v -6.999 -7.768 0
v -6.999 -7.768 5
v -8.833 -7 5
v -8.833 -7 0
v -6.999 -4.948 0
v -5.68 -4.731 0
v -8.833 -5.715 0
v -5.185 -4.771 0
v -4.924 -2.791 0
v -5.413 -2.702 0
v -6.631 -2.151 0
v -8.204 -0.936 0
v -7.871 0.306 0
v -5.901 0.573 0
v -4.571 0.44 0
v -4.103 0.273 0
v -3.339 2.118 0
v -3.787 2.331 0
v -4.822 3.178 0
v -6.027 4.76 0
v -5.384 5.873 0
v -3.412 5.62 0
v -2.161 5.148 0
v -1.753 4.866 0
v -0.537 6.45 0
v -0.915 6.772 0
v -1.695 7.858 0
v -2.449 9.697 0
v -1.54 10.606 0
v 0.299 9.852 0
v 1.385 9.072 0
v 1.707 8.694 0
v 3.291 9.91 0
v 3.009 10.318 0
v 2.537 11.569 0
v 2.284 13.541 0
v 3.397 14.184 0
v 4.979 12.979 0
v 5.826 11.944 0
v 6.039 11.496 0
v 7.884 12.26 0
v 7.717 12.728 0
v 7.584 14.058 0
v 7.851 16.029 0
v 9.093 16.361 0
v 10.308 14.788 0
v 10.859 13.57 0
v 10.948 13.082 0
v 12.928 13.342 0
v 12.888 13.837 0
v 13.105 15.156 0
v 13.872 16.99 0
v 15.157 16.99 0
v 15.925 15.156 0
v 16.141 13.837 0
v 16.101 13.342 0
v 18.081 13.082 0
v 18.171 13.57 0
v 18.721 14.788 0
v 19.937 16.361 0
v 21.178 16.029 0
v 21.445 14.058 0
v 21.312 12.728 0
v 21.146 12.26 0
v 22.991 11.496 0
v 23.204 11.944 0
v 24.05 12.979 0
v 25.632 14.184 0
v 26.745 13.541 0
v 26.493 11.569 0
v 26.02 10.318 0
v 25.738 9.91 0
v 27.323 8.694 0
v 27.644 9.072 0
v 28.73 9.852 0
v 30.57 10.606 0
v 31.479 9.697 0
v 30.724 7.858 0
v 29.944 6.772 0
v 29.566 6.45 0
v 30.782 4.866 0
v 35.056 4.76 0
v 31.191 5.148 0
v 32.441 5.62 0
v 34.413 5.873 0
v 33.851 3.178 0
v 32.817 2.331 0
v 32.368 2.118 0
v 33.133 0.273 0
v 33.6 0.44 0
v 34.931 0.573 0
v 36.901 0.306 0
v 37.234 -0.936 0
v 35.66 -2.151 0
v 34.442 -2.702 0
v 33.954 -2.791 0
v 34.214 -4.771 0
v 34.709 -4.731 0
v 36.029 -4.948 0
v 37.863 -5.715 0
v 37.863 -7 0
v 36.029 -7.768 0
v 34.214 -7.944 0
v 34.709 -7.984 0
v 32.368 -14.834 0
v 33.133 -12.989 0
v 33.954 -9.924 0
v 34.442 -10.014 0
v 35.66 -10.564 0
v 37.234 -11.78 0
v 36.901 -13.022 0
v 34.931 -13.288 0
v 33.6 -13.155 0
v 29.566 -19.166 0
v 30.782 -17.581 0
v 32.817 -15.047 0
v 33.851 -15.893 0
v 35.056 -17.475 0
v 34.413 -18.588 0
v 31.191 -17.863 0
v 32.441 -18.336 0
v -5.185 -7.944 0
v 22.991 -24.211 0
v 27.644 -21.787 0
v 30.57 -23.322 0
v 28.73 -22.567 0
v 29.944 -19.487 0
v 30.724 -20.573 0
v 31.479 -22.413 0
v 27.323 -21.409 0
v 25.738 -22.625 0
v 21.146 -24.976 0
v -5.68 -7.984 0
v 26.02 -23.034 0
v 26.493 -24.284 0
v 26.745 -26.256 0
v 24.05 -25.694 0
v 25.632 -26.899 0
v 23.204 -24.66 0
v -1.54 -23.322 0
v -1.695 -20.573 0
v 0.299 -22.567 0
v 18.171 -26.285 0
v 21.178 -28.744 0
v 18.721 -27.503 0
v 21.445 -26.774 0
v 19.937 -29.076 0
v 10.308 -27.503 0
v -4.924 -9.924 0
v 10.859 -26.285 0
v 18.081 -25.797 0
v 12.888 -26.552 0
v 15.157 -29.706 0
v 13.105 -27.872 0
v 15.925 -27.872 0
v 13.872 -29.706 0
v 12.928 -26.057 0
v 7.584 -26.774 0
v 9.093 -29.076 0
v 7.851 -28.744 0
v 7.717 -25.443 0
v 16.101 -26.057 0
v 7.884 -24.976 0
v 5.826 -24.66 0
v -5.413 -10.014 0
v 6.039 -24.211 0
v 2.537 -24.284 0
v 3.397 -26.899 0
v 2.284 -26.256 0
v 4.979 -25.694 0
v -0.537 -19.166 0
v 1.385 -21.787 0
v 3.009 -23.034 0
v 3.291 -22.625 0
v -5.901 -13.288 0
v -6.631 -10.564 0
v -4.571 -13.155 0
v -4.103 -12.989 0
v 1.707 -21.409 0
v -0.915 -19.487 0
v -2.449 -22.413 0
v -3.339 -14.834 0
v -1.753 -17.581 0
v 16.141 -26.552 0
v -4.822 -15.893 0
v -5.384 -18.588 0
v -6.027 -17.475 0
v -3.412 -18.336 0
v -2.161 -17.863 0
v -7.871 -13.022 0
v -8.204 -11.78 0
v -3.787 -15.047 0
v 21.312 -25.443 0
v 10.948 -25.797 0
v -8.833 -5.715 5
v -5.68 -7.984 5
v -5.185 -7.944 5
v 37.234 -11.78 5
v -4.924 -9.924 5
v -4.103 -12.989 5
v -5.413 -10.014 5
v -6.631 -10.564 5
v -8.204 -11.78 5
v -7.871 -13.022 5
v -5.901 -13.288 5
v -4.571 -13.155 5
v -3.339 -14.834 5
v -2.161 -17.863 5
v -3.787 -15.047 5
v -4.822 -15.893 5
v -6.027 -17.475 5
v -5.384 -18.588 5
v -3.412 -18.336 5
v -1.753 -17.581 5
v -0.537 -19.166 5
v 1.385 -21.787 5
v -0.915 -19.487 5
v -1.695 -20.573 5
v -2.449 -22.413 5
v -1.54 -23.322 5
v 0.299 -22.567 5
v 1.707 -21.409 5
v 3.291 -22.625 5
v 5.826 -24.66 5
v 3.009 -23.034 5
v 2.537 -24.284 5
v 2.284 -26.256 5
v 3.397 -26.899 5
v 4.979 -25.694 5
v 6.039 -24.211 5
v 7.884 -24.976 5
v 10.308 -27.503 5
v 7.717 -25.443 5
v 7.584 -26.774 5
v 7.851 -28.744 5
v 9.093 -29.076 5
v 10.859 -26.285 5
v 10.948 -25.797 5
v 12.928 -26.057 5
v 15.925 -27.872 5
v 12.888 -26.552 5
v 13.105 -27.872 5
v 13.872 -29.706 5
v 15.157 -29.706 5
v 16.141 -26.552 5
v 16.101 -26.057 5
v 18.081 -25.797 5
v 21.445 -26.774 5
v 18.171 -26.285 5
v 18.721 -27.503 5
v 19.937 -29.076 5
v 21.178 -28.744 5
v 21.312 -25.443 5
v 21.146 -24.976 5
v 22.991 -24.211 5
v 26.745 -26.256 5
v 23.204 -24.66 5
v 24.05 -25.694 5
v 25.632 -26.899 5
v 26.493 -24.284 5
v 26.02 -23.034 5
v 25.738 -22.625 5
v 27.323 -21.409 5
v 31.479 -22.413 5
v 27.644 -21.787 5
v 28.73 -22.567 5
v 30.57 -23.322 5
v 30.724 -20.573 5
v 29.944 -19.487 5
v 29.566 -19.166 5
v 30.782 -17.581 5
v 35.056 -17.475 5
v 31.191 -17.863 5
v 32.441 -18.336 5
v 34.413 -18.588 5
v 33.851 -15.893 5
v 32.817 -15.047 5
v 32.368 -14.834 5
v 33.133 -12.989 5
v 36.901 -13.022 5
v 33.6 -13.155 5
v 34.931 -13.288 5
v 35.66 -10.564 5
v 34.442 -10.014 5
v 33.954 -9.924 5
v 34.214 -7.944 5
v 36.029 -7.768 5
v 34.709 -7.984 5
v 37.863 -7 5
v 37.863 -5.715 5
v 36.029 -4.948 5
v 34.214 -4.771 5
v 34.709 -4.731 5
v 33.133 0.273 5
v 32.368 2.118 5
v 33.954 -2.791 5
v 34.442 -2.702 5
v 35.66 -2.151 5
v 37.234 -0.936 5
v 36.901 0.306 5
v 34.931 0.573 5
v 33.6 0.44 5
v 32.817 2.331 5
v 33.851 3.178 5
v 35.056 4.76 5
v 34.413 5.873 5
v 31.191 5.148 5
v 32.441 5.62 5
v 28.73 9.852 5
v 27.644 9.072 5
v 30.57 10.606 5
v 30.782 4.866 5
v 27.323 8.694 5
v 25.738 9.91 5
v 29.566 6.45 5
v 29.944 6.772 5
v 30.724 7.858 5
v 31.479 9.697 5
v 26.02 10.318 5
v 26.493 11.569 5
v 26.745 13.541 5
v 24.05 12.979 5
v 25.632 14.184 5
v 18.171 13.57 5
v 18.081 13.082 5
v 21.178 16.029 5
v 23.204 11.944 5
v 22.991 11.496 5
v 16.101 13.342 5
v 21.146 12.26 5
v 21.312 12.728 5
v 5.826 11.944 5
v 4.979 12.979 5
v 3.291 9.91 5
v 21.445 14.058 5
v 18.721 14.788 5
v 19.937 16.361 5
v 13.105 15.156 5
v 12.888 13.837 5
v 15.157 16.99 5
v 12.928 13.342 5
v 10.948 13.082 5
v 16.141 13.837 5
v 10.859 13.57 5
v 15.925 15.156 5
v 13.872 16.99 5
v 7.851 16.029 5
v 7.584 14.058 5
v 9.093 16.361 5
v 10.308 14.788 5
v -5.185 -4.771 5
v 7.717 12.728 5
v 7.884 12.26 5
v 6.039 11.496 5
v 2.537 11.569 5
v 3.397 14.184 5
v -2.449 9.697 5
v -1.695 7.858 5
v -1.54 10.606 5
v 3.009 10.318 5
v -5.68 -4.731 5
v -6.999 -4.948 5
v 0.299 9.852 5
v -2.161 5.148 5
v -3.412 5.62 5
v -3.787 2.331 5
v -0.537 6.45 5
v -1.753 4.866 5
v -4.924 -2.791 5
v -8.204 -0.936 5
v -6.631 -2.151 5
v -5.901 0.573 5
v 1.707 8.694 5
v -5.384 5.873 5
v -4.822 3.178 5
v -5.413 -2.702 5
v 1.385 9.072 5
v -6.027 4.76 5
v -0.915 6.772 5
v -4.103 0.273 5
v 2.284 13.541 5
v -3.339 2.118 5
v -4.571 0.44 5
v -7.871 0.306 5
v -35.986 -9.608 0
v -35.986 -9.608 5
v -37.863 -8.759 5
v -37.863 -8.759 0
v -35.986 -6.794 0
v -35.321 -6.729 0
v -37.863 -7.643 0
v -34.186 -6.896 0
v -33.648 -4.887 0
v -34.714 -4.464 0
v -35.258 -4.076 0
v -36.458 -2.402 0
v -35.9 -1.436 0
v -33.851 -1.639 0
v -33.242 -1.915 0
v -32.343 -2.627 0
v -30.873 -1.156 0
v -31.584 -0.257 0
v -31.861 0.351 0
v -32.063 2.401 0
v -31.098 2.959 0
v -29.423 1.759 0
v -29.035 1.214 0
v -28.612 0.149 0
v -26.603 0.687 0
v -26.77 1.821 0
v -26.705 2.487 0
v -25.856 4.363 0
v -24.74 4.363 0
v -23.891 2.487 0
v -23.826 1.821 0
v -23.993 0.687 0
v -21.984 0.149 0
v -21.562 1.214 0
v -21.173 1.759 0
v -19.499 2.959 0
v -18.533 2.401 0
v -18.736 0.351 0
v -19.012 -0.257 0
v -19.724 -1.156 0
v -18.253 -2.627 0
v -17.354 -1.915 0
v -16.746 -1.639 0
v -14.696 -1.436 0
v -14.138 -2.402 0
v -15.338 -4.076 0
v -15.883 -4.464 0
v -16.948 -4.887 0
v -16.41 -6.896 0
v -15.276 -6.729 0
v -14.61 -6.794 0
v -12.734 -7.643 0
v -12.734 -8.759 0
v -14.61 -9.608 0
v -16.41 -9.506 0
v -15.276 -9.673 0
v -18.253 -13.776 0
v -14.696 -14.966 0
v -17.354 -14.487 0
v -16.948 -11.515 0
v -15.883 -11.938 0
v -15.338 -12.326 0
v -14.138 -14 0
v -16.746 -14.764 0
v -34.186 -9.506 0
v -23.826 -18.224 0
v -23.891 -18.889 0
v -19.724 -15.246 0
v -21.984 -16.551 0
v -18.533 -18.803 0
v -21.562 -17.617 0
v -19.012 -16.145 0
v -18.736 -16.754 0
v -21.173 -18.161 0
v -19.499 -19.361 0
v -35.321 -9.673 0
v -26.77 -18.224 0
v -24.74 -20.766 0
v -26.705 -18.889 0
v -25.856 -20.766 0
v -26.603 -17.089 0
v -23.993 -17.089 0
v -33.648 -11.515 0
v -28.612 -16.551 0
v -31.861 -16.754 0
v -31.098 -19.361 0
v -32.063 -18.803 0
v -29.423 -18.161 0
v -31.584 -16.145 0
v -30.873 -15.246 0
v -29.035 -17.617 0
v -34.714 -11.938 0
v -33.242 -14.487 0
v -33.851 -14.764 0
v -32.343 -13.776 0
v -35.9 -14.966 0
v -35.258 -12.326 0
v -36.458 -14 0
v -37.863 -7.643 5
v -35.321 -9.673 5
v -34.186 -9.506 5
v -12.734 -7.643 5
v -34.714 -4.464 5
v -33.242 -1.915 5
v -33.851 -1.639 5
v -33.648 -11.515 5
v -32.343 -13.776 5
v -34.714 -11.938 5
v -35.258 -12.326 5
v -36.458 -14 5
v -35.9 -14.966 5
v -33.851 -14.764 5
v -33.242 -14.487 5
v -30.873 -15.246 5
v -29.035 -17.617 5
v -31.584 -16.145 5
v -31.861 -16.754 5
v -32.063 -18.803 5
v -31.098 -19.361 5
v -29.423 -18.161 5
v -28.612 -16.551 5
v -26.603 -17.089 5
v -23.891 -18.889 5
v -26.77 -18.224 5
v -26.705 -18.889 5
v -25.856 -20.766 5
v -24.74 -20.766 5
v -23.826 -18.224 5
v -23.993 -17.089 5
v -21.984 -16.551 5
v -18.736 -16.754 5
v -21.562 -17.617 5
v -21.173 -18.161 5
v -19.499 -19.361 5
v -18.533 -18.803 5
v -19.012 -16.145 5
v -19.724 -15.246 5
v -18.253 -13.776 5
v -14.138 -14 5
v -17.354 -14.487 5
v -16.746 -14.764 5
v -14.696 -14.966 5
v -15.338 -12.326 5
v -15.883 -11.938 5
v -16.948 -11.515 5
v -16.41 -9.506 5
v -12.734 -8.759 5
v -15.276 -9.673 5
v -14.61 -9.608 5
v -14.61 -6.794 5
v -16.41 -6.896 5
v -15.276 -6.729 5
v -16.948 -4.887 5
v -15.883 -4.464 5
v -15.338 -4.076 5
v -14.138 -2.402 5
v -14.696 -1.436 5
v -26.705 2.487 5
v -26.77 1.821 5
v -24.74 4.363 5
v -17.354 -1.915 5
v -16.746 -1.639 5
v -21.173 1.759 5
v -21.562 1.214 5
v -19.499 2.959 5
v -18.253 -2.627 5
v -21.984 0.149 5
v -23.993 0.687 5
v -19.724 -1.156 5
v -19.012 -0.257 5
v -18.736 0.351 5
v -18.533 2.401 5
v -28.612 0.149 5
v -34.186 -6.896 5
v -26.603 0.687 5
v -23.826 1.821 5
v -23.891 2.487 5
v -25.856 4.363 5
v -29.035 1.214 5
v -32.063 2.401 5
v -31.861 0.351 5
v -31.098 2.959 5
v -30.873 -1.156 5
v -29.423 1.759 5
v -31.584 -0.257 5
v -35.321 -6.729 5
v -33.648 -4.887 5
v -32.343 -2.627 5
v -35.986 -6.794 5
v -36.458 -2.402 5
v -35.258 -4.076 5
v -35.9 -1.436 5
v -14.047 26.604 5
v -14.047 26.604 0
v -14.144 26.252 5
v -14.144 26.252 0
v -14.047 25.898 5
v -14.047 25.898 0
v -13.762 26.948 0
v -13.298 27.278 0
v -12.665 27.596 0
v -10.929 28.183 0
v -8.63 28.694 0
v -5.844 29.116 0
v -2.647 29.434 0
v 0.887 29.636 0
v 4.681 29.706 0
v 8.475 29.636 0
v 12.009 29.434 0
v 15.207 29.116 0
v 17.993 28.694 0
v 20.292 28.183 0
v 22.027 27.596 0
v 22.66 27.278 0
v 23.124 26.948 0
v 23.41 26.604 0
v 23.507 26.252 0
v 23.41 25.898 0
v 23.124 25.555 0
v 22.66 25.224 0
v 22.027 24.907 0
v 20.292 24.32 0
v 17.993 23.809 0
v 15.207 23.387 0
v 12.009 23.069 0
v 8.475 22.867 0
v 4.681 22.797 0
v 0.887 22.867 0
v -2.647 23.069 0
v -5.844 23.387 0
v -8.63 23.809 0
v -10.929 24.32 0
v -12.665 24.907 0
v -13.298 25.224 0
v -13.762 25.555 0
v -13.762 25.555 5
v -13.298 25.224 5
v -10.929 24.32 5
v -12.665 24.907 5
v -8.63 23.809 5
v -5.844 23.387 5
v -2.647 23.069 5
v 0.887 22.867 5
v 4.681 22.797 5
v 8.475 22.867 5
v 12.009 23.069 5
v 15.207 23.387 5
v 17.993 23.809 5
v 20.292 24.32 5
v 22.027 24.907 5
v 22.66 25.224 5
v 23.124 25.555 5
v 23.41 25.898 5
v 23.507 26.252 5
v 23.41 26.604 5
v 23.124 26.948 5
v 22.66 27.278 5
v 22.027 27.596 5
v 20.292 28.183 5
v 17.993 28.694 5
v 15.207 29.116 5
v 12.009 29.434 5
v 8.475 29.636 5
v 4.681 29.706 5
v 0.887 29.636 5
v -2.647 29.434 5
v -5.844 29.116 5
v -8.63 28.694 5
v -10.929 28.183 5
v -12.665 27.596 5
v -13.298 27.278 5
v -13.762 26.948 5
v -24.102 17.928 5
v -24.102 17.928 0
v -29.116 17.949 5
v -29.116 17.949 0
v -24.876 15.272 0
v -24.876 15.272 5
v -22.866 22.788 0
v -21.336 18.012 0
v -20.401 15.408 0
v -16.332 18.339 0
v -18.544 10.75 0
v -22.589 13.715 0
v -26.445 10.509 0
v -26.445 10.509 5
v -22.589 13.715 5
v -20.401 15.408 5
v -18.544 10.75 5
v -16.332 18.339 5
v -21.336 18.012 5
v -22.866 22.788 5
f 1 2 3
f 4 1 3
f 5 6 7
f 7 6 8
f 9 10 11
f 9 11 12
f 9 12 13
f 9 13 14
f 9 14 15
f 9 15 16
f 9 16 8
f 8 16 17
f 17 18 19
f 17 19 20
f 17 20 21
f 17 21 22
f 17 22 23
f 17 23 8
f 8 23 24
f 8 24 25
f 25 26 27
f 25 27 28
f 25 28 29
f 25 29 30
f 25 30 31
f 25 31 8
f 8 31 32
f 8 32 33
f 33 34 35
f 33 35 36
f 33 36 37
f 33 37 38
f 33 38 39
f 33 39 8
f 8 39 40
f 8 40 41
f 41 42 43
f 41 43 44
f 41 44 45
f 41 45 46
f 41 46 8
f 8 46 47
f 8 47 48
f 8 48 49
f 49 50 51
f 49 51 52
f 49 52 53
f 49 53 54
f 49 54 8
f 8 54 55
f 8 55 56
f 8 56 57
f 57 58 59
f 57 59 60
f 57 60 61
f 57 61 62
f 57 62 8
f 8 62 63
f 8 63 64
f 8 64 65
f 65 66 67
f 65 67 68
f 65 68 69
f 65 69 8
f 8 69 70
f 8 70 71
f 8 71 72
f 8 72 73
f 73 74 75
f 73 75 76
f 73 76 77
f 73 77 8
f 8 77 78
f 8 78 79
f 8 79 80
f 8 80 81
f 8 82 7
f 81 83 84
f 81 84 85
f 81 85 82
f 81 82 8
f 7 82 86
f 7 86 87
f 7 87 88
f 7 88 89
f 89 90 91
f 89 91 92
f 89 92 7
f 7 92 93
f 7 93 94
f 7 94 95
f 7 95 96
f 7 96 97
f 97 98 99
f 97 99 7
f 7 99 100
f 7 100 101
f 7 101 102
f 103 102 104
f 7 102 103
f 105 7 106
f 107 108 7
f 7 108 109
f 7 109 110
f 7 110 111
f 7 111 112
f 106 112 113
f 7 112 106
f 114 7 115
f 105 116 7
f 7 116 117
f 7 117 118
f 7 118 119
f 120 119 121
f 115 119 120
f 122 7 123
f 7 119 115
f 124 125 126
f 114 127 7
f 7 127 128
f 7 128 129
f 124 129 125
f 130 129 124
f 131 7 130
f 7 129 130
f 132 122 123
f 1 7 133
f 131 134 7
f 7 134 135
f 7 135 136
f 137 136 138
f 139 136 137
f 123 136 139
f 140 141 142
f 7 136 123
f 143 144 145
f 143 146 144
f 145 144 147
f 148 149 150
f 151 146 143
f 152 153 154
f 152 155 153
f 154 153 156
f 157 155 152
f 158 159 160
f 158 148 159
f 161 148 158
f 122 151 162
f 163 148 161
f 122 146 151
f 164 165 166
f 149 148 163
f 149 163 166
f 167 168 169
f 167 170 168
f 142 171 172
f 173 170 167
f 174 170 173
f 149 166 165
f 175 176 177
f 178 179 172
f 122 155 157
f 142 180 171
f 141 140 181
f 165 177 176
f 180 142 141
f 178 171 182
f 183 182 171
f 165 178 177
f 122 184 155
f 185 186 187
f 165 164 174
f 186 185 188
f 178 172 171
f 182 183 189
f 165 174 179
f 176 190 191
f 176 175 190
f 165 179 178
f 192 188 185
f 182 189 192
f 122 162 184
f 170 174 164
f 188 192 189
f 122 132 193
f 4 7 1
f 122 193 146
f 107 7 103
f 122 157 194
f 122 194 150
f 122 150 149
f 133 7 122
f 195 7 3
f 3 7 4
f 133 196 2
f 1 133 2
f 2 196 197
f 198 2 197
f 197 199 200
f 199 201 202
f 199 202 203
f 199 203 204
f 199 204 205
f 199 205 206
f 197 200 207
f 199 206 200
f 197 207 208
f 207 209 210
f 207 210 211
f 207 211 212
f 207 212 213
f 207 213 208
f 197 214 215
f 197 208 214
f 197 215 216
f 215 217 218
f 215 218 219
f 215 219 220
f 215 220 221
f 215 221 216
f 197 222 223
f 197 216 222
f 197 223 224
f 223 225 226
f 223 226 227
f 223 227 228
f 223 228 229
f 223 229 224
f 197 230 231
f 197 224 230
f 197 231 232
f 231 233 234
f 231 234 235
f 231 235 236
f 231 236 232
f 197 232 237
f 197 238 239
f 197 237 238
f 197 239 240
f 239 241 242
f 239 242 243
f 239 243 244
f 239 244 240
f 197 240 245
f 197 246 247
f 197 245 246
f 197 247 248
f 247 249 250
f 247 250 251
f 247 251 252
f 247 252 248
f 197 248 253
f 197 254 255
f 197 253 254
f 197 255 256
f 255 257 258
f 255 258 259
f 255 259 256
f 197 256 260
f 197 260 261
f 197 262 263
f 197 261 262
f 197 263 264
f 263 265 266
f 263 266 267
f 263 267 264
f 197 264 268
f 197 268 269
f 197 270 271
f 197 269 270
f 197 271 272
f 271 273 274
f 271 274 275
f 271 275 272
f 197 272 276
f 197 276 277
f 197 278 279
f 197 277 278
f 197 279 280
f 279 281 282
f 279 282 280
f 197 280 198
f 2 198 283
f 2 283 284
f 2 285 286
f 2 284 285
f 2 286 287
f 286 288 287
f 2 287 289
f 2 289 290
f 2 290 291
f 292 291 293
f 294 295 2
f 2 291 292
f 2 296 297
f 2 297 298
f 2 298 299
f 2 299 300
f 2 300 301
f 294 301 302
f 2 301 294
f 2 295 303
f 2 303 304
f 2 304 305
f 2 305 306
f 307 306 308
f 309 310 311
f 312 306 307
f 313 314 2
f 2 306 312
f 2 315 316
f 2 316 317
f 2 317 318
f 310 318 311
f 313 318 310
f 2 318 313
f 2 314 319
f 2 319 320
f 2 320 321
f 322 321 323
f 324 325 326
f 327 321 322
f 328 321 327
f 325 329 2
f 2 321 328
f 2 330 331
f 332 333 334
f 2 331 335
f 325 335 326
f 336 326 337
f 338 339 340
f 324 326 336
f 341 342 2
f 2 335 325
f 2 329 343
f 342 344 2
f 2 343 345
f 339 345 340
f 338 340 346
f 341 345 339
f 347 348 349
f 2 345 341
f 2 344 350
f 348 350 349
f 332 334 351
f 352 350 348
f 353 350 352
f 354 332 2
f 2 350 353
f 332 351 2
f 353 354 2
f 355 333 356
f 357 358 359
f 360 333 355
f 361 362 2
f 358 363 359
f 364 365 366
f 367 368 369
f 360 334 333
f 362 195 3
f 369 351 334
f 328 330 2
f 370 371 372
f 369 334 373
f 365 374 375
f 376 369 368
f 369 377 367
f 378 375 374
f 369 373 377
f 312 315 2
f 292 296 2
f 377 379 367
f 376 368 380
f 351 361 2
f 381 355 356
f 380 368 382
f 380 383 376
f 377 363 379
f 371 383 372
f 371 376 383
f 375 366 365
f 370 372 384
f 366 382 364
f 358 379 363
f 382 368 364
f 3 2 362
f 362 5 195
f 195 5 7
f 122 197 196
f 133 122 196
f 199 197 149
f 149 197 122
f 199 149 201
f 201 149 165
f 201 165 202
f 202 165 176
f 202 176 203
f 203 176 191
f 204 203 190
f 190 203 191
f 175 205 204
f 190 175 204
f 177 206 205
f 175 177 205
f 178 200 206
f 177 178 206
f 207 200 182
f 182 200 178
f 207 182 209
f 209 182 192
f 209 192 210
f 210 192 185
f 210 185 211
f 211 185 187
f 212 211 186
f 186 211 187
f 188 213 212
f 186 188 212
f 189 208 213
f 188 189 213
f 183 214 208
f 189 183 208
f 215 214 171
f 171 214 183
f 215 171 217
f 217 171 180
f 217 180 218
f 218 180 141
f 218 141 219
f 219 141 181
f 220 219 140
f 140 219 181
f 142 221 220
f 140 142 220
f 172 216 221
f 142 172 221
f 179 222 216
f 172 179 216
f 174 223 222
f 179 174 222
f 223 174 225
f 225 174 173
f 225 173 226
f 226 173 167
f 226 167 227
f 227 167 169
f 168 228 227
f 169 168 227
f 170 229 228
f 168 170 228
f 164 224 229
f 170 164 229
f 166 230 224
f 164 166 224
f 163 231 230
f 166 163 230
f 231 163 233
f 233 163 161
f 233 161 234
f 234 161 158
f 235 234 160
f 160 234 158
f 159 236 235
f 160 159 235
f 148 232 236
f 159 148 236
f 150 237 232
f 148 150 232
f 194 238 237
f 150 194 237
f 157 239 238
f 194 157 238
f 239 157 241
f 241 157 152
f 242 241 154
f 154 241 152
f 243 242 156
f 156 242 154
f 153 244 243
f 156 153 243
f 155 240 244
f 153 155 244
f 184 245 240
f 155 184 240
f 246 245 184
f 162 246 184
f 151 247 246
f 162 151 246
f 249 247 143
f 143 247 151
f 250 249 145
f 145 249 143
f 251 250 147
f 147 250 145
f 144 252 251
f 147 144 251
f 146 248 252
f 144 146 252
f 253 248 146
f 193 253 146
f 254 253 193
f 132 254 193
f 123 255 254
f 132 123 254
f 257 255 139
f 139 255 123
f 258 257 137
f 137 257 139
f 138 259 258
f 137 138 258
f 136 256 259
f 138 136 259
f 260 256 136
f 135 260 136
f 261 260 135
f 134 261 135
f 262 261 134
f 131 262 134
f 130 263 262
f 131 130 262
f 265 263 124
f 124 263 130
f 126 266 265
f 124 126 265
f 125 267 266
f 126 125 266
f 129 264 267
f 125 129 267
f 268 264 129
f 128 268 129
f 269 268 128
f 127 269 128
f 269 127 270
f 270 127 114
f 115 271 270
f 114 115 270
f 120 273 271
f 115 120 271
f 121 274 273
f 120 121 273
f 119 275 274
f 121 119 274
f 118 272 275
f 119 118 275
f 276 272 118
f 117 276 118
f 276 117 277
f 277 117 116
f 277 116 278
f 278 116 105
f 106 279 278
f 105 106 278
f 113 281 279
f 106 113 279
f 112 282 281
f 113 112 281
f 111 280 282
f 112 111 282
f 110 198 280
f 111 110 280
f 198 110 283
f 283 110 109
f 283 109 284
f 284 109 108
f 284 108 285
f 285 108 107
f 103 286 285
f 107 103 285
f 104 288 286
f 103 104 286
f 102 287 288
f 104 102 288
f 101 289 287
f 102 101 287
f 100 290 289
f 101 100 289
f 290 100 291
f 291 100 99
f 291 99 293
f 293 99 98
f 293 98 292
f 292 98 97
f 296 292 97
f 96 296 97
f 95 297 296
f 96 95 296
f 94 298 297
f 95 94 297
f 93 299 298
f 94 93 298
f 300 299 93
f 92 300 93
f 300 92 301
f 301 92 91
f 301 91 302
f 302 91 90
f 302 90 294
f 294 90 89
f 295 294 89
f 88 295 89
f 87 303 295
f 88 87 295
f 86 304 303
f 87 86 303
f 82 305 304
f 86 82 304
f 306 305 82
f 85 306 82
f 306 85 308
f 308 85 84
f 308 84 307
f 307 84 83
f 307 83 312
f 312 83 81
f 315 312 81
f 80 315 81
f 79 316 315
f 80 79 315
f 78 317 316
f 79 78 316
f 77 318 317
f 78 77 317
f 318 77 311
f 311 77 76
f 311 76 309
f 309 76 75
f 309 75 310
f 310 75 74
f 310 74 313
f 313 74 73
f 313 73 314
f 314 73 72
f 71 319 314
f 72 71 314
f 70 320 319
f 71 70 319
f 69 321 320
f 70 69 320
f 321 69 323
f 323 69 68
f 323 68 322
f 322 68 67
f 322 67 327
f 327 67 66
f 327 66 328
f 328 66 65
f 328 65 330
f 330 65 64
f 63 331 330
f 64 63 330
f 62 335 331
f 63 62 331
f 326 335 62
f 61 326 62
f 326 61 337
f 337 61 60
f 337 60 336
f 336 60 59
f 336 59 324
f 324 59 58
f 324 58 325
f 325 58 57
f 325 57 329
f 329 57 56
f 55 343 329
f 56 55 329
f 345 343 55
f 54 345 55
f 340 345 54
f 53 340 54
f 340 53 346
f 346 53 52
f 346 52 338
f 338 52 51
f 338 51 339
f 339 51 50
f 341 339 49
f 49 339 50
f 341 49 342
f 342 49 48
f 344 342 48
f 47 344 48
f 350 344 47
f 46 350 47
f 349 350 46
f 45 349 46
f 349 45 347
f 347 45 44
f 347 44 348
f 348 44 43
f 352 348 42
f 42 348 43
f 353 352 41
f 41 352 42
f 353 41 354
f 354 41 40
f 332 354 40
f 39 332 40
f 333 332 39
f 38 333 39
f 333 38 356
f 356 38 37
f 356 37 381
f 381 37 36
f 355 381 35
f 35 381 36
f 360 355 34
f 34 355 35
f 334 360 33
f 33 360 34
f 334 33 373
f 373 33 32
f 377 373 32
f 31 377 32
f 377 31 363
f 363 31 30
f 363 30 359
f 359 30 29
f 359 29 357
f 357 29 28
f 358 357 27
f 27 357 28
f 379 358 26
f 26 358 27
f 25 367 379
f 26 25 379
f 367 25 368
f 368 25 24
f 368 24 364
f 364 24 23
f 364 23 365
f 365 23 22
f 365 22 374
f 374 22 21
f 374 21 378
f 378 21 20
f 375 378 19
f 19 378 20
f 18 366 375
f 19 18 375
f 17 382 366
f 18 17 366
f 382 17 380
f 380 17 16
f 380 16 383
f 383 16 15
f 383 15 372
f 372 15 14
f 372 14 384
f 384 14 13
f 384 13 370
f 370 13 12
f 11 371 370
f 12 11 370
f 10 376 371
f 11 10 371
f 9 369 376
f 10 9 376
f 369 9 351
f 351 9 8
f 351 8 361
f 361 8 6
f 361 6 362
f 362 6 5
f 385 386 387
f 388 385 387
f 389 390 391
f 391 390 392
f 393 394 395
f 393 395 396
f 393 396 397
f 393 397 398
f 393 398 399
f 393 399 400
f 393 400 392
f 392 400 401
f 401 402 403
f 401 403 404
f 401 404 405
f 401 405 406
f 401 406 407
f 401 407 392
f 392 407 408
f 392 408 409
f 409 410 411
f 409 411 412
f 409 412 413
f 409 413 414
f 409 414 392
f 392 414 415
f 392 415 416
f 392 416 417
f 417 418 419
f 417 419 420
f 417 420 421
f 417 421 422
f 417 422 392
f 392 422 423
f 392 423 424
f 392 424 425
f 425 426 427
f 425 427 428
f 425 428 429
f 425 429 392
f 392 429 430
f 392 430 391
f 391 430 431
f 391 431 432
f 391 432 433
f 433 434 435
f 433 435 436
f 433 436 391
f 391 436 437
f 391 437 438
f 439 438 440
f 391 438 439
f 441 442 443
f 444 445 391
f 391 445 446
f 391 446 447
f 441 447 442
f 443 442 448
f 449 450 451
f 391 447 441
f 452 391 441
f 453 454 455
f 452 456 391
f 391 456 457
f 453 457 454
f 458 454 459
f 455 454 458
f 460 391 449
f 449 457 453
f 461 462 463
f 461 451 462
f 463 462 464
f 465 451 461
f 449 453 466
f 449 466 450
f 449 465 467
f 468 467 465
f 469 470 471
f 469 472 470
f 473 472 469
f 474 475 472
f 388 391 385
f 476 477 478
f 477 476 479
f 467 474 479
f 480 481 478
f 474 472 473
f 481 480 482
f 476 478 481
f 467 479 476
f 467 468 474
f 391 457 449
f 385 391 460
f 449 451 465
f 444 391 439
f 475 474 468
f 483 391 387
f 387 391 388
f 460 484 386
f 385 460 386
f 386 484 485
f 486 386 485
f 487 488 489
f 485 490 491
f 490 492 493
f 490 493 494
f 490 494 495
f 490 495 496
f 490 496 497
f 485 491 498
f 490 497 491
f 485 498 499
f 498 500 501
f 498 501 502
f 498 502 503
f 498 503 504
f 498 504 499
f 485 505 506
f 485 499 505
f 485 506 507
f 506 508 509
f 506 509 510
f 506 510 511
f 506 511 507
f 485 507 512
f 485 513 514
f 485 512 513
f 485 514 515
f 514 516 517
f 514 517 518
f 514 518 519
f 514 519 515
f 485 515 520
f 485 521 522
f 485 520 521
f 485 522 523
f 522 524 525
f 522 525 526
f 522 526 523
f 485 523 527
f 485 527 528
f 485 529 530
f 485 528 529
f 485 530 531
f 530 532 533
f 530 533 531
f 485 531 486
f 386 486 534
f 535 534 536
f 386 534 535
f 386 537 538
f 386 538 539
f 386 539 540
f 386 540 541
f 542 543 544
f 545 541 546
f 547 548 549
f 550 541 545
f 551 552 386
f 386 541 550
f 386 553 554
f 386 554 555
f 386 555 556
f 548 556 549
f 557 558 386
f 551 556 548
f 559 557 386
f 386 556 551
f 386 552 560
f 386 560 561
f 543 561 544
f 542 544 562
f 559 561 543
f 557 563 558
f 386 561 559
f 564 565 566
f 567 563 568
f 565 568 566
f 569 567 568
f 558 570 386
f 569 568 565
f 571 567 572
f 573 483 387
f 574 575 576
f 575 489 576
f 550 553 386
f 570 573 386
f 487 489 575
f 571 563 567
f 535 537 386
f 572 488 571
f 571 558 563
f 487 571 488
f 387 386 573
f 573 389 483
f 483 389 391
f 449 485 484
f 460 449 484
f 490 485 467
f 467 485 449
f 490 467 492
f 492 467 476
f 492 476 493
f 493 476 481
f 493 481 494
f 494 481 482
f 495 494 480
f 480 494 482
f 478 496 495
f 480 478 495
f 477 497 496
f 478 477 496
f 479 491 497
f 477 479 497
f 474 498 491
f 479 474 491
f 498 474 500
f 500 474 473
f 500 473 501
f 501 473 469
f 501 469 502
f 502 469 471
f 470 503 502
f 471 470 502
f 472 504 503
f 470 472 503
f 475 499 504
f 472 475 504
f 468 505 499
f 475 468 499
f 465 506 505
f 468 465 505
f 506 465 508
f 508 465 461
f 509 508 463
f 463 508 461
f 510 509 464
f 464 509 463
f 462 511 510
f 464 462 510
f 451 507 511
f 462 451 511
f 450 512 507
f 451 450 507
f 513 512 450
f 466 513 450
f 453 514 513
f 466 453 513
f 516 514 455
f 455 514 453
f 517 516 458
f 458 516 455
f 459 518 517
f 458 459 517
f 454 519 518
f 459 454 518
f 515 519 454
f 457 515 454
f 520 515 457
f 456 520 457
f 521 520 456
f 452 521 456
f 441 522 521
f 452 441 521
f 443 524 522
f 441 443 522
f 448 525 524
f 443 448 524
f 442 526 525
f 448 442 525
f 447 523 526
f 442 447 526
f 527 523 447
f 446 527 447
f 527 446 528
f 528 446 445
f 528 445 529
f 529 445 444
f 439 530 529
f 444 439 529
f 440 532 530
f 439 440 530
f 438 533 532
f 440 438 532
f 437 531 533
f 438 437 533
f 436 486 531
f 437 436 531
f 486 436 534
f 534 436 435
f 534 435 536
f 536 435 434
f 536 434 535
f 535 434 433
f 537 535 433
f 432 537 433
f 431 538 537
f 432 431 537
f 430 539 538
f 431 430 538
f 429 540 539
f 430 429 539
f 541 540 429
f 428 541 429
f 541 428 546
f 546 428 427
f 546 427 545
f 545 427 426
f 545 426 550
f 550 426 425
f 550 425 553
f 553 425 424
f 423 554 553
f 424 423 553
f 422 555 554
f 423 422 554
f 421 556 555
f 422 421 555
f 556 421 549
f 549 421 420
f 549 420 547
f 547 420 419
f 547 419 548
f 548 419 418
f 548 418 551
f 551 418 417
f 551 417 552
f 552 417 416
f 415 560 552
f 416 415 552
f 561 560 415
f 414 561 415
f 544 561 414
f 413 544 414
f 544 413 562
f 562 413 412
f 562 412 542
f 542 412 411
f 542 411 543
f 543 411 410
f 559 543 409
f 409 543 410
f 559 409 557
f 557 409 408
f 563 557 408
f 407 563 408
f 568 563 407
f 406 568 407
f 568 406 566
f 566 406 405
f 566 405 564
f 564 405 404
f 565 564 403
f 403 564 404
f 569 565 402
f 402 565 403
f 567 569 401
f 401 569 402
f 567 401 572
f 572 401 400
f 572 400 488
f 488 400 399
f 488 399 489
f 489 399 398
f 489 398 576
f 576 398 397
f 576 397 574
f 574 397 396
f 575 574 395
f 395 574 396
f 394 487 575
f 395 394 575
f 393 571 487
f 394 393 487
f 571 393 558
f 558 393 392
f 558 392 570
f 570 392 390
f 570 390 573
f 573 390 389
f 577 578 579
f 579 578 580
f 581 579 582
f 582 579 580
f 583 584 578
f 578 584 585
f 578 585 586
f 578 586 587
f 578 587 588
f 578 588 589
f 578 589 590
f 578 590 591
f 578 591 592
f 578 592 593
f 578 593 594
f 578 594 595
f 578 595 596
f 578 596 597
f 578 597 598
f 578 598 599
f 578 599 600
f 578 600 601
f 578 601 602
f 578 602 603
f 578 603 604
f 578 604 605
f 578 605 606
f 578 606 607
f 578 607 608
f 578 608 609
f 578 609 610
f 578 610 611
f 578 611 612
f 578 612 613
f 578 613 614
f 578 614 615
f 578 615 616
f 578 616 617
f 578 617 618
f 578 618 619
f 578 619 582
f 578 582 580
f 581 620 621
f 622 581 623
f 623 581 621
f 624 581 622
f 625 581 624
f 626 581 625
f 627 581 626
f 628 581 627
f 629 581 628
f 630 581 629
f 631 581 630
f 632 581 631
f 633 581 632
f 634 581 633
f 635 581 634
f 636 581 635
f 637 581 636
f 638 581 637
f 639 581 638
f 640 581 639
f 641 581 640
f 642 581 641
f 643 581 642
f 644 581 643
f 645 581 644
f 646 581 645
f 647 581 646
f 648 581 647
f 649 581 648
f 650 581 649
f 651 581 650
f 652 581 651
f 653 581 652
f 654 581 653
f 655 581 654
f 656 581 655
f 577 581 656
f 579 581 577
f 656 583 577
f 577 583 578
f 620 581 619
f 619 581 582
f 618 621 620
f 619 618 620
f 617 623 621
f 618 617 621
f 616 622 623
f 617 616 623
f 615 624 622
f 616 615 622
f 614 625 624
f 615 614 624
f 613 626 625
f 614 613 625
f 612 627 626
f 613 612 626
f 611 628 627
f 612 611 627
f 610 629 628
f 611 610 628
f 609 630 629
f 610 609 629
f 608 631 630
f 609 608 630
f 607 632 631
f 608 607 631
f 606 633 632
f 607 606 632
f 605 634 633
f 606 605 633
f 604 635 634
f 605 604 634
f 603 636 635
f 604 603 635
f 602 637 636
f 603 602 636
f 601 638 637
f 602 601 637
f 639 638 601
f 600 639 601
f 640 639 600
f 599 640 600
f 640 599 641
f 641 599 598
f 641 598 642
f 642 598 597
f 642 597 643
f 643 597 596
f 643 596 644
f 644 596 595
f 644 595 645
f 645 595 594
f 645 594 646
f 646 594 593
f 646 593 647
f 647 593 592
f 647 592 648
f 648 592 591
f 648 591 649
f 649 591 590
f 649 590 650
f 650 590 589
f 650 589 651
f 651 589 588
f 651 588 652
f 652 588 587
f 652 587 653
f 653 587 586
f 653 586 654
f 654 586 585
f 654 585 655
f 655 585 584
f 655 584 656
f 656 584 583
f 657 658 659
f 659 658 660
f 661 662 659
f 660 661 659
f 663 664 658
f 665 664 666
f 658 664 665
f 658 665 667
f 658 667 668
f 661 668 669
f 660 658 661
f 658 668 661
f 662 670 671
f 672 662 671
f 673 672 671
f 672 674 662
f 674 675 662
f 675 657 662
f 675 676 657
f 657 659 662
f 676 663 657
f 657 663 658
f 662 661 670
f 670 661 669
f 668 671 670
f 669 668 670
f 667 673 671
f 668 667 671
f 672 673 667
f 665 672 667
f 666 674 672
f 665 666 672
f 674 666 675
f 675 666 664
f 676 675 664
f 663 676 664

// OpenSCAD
module path_path3049(h)
{
  scale([25.4/90, -25.4/90, 1])
    linear_extrude(height=h)
      polygon(points=[[121.231574,16.906277],[122.985574,16.765277],[127.660574,17.531277],[134.158574,20.250277],[134.158574,24.804277],[127.660574,27.523277],[122.985574,28.289277],[121.231574,28.148277],[120.308574,35.164277],[122.038574,35.481277],[126.355574,37.431277],[131.929574,41.739277],[130.750574,46.139277],[123.769574,47.083277],[119.055574,46.613277],[117.398574,46.023277],[114.690574,52.560277],[116.279574,53.315277],[119.945574,56.315277],[124.213574,61.919277],[121.936574,65.864277],[114.949574,64.969277],[110.517574,63.295277],[109.069574,62.296277],[104.761574,67.910277],[106.101574,69.050277],[108.865574,72.897277],[111.538574,79.415277],[108.317574,82.636277],[101.799574,79.963277],[97.952574,77.199277],[96.812574,75.859277],[91.198574,80.167277],[92.197574,81.615277],[93.871574,86.047277],[94.766574,93.034277],[90.821574,95.311277],[85.217574,91.043277],[82.217574,87.377277],[81.462574,85.788277],[74.925574,88.496277],[75.515574,90.153277],[75.985574,94.867277],[75.041574,101.848277],[70.641574,103.027277],[66.333574,97.453277],[64.383574,93.136277],[64.066574,91.406277],[57.050574,92.329277],[57.191574,94.083277],[56.425574,98.758277],[53.706574,105.256277],[49.152574,105.256277],[46.433574,98.758277],[45.667574,94.083277],[45.808574,92.329277],[38.792574,91.406277],[38.475574,93.136277],[36.525574,97.453277],[32.217574,103.027277],[27.817574,101.848277],[26.873574,94.867277],[27.343574,90.153277],[27.933574,88.496277],[21.396574,85.788277],[20.641574,87.377277],[17.641574,91.043277],[12.037574,95.311277],[8.092574,93.034277],[8.987574,86.047277],[10.661574,81.615277],[11.660574,80.167277],[6.046574,75.859277],[4.906574,77.199277],[1.059574,79.963277],[-5.458426,82.636277],[-8.679426,79.415277],[-6.006426,72.897277],[-3.242426,69.050277],[-1.902426,67.910277],[-6.210426,62.296277],[-7.658426,63.295277],[-12.090426,64.969277],[-19.077426,65.864277],[-21.354426,61.919277],[-17.086426,56.315277],[-13.420426,53.315277],[-11.831426,52.560277],[-14.539426,46.023277],[-16.196426,46.613277],[-20.910426,47.083277],[-27.891426,46.139277],[-29.070426,41.739277],[-23.496426,37.431277],[-19.179426,35.481277],[-17.449426,35.164277],[-18.372426,28.148277],[-20.126426,28.289277],[-24.801426,27.523277],[-31.299426,24.804277],[-31.299426,20.250277],[-24.801426,17.531277],[-20.126426,16.765277],[-18.372426,16.906277],[-17.449426,9.890277],[-19.179426,9.573277],[-23.496426,7.623277],[-29.070426,3.315277],[-27.891426,-1.084723],[-20.910426,-2.028723],[-16.196426,-1.558723],[-14.539426,-0.968723],[-11.831426,-7.505723],[-13.420426,-8.260723],[-17.086426,-11.260723],[-21.354426,-16.864723],[-19.077426,-20.809723],[-12.090426,-19.914723],[-7.658426,-18.240723],[-6.210426,-17.241723],[-1.902426,-22.855723],[-3.242426,-23.995723],[-6.006426,-27.842723],[-8.679426,-34.360723],[-5.458426,-37.581723],[1.059574,-34.908723],[4.906574,-32.144723],[6.046574,-30.804723],[11.660574,-35.112723],[10.661574,-36.560723],[8.987574,-40.992723],[8.092574,-47.979723],[12.037574,-50.256723],[17.641574,-45.988723],[20.641574,-42.322723],[21.396574,-40.733723],[27.933574,-43.441723],[27.343574,-45.098723],[26.873574,-49.812723],[27.817574,-56.793723],[32.217574,-57.972723],[36.525574,-52.398723],[38.475574,-48.081723],[38.792574,-46.351723],[45.808574,-47.274723],[45.667574,-49.028723],[46.433574,-53.703723],[49.152574,-60.201723],[53.706574,-60.201723],[56.425574,-53.703723],[57.191574,-49.028723],[57.050574,-47.274723],[64.066574,-46.351723],[64.383574,-48.081723],[66.333574,-52.398723],[70.641574,-57.972723],[75.041574,-56.793723],[75.985574,-49.812723],[75.515574,-45.098723],[74.925574,-43.441723],[81.462574,-40.733723],[82.217574,-42.322723],[85.217574,-45.988723],[90.821574,-50.256723],[94.766574,-47.979723],[93.871574,-40.992723],[92.197574,-36.560723],[91.198574,-35.112723],[96.812574,-30.804723],[97.952574,-32.144723],[101.799574,-34.908723],[108.317574,-37.581723],[111.538574,-34.360723],[108.865574,-27.842723],[106.101574,-23.995723],[104.761574,-22.855723],[109.069574,-17.241723],[110.517574,-18.240723],[114.949574,-19.914723],[121.936574,-20.809723],[124.213574,-16.864723],[119.945574,-11.260723],[116.279574,-8.260723],[114.690574,-7.505723],[117.398574,-0.968723],[119.055574,-1.558723],[123.769574,-2.028723],[130.750574,-1.084723],[131.929574,3.315277],[126.355574,7.623277],[122.038574,9.573277],[120.308574,9.890277],[121.231574,16.906277]]);
}

module path_path3072(h)
{
  scale([25.4/90, -25.4/90, 1])
    linear_extrude(height=h)
      polygon(points=[[-58.145574,24.433517],[-54.125574,23.843517],[-51.768574,24.072517],[-45.118574,27.082517],[-45.118574,31.034517],[-51.768574,34.044517],[-54.125574,34.273517],[-58.145574,33.683517],[-60.052574,40.800517],[-56.276574,42.298517],[-54.348574,43.675517],[-50.095574,49.607517],[-52.071574,53.029517],[-59.334574,52.311517],[-61.491574,51.331517],[-64.676574,48.810517],[-69.886574,54.020517],[-67.365574,57.205517],[-66.385574,59.362517],[-65.667574,66.625517],[-69.089574,68.601517],[-75.021574,64.348517],[-76.398574,62.420517],[-77.896574,58.644517],[-85.013574,60.551517],[-84.423574,64.571517],[-84.652574,66.928517],[-87.662574,73.578517],[-91.614574,73.578517],[-94.624574,66.928517],[-94.853574,64.571517],[-94.263574,60.551517],[-101.380574,58.644517],[-102.878574,62.420517],[-104.255574,64.348517],[-110.187574,68.601517],[-113.609574,66.625517],[-112.891574,59.362517],[-111.911574,57.205517],[-109.390574,54.020517],[-114.600574,48.810517],[-117.785574,51.331517],[-119.942574,52.311517],[-127.205574,53.029517],[-129.181574,49.607517],[-124.928574,43.675517],[-123.000574,42.298517],[-119.224574,40.800517],[-121.131574,33.683517],[-125.151574,34.273517],[-127.508574,34.044517],[-134.158574,31.034517],[-134.158574,27.082517],[-127.508574,24.072517],[-125.151574,23.843517],[-121.131574,24.433517],[-119.224574,17.316517],[-123.000574,15.818517],[-124.928574,14.441517],[-129.181574,8.509517],[-127.205574,5.087517],[-119.942574,5.805517],[-117.785574,6.785517],[-114.600574,9.306517],[-109.390574,4.096517],[-111.911574,0.911517],[-112.891574,-1.245483],[-113.609574,-8.508483],[-110.187574,-10.484483],[-104.255574,-6.231483],[-102.878574,-4.303483],[-101.380574,-0.527483],[-94.263574,-2.434483],[-94.853574,-6.454483],[-94.624574,-8.811483],[-91.614574,-15.461483],[-87.662574,-15.461483],[-84.652574,-8.811483],[-84.423574,-6.454483],[-85.013574,-2.434483],[-77.896574,-0.527483],[-76.398574,-4.303483],[-75.021574,-6.231483],[-69.089574,-10.484483],[-65.667574,-8.508483],[-66.385574,-1.245483],[-67.365574,0.911517],[-69.886574,4.096517],[-64.676574,9.306517],[-61.491574,6.785517],[-59.334574,5.805517],[-52.071574,5.087517],[-50.095574,8.509517],[-54.348574,14.441517],[-56.276574,15.818517],[-60.052574,17.316517],[-58.145574,24.433517]]);
}

module path_path3085(h)
{
  scale([25.4/90, -25.4/90, 1])
    linear_extrude(height=h)
      polygon(points=[[83.291662,-93.016875],[82.947273,-91.765467],[81.936459,-90.550209],[80.292749,-89.377251],[78.049673,-88.252747],[71.899540,-86.173709],[63.754296,-84.362311],[53.882176,-82.867771],[42.551417,-81.739306],[30.030254,-81.026134],[16.586922,-80.777473],[3.143587,-81.026134],[-9.377579,-81.739306],[-20.708340,-82.867771],[-30.580460,-84.362311],[-38.725705,-86.173709],[-44.875839,-88.252747],[-47.118915,-89.377251],[-48.762625,-90.550209],[-49.773439,-91.765467],[-50.117828,-93.016875],[-49.773439,-94.268283],[-48.762625,-95.483541],[-47.118915,-96.656499],[-44.875839,-97.781003],[-38.725705,-99.860041],[-30.580460,-101.671439],[-20.708340,-103.165979],[-9.377579,-104.294444],[3.143587,-105.007616],[16.586922,-105.256277],[30.030254,-105.007616],[42.551417,-104.294444],[53.882176,-103.165979],[63.754296,-101.671439],[71.899540,-99.860041],[78.049673,-97.781003],[80.292749,-96.656499],[81.936459,-95.483541],[82.947273,-94.268283],[83.291662,-93.016875],[83.291662,-93.016875]]);
}

module path_path3081(h)
{
  scale([25.4/90, -25.4/90, 1])
    linear_extrude(height=h)
      polygon(points=[[-57.869579,-64.979616],[-72.288339,-54.595922],[-65.708659,-38.090486],[-80.039779,-48.594799],[-93.704150,-37.236694],[-88.142519,-54.112410],[-103.167238,-63.598150],[-85.398839,-63.523604],[-81.020259,-80.744219],[-75.600419,-63.822431],[-57.869579,-64.979616]]);
}

path_path3049(5);
path_path3072(5);
path_path3085(5);
path_path3081(5);
